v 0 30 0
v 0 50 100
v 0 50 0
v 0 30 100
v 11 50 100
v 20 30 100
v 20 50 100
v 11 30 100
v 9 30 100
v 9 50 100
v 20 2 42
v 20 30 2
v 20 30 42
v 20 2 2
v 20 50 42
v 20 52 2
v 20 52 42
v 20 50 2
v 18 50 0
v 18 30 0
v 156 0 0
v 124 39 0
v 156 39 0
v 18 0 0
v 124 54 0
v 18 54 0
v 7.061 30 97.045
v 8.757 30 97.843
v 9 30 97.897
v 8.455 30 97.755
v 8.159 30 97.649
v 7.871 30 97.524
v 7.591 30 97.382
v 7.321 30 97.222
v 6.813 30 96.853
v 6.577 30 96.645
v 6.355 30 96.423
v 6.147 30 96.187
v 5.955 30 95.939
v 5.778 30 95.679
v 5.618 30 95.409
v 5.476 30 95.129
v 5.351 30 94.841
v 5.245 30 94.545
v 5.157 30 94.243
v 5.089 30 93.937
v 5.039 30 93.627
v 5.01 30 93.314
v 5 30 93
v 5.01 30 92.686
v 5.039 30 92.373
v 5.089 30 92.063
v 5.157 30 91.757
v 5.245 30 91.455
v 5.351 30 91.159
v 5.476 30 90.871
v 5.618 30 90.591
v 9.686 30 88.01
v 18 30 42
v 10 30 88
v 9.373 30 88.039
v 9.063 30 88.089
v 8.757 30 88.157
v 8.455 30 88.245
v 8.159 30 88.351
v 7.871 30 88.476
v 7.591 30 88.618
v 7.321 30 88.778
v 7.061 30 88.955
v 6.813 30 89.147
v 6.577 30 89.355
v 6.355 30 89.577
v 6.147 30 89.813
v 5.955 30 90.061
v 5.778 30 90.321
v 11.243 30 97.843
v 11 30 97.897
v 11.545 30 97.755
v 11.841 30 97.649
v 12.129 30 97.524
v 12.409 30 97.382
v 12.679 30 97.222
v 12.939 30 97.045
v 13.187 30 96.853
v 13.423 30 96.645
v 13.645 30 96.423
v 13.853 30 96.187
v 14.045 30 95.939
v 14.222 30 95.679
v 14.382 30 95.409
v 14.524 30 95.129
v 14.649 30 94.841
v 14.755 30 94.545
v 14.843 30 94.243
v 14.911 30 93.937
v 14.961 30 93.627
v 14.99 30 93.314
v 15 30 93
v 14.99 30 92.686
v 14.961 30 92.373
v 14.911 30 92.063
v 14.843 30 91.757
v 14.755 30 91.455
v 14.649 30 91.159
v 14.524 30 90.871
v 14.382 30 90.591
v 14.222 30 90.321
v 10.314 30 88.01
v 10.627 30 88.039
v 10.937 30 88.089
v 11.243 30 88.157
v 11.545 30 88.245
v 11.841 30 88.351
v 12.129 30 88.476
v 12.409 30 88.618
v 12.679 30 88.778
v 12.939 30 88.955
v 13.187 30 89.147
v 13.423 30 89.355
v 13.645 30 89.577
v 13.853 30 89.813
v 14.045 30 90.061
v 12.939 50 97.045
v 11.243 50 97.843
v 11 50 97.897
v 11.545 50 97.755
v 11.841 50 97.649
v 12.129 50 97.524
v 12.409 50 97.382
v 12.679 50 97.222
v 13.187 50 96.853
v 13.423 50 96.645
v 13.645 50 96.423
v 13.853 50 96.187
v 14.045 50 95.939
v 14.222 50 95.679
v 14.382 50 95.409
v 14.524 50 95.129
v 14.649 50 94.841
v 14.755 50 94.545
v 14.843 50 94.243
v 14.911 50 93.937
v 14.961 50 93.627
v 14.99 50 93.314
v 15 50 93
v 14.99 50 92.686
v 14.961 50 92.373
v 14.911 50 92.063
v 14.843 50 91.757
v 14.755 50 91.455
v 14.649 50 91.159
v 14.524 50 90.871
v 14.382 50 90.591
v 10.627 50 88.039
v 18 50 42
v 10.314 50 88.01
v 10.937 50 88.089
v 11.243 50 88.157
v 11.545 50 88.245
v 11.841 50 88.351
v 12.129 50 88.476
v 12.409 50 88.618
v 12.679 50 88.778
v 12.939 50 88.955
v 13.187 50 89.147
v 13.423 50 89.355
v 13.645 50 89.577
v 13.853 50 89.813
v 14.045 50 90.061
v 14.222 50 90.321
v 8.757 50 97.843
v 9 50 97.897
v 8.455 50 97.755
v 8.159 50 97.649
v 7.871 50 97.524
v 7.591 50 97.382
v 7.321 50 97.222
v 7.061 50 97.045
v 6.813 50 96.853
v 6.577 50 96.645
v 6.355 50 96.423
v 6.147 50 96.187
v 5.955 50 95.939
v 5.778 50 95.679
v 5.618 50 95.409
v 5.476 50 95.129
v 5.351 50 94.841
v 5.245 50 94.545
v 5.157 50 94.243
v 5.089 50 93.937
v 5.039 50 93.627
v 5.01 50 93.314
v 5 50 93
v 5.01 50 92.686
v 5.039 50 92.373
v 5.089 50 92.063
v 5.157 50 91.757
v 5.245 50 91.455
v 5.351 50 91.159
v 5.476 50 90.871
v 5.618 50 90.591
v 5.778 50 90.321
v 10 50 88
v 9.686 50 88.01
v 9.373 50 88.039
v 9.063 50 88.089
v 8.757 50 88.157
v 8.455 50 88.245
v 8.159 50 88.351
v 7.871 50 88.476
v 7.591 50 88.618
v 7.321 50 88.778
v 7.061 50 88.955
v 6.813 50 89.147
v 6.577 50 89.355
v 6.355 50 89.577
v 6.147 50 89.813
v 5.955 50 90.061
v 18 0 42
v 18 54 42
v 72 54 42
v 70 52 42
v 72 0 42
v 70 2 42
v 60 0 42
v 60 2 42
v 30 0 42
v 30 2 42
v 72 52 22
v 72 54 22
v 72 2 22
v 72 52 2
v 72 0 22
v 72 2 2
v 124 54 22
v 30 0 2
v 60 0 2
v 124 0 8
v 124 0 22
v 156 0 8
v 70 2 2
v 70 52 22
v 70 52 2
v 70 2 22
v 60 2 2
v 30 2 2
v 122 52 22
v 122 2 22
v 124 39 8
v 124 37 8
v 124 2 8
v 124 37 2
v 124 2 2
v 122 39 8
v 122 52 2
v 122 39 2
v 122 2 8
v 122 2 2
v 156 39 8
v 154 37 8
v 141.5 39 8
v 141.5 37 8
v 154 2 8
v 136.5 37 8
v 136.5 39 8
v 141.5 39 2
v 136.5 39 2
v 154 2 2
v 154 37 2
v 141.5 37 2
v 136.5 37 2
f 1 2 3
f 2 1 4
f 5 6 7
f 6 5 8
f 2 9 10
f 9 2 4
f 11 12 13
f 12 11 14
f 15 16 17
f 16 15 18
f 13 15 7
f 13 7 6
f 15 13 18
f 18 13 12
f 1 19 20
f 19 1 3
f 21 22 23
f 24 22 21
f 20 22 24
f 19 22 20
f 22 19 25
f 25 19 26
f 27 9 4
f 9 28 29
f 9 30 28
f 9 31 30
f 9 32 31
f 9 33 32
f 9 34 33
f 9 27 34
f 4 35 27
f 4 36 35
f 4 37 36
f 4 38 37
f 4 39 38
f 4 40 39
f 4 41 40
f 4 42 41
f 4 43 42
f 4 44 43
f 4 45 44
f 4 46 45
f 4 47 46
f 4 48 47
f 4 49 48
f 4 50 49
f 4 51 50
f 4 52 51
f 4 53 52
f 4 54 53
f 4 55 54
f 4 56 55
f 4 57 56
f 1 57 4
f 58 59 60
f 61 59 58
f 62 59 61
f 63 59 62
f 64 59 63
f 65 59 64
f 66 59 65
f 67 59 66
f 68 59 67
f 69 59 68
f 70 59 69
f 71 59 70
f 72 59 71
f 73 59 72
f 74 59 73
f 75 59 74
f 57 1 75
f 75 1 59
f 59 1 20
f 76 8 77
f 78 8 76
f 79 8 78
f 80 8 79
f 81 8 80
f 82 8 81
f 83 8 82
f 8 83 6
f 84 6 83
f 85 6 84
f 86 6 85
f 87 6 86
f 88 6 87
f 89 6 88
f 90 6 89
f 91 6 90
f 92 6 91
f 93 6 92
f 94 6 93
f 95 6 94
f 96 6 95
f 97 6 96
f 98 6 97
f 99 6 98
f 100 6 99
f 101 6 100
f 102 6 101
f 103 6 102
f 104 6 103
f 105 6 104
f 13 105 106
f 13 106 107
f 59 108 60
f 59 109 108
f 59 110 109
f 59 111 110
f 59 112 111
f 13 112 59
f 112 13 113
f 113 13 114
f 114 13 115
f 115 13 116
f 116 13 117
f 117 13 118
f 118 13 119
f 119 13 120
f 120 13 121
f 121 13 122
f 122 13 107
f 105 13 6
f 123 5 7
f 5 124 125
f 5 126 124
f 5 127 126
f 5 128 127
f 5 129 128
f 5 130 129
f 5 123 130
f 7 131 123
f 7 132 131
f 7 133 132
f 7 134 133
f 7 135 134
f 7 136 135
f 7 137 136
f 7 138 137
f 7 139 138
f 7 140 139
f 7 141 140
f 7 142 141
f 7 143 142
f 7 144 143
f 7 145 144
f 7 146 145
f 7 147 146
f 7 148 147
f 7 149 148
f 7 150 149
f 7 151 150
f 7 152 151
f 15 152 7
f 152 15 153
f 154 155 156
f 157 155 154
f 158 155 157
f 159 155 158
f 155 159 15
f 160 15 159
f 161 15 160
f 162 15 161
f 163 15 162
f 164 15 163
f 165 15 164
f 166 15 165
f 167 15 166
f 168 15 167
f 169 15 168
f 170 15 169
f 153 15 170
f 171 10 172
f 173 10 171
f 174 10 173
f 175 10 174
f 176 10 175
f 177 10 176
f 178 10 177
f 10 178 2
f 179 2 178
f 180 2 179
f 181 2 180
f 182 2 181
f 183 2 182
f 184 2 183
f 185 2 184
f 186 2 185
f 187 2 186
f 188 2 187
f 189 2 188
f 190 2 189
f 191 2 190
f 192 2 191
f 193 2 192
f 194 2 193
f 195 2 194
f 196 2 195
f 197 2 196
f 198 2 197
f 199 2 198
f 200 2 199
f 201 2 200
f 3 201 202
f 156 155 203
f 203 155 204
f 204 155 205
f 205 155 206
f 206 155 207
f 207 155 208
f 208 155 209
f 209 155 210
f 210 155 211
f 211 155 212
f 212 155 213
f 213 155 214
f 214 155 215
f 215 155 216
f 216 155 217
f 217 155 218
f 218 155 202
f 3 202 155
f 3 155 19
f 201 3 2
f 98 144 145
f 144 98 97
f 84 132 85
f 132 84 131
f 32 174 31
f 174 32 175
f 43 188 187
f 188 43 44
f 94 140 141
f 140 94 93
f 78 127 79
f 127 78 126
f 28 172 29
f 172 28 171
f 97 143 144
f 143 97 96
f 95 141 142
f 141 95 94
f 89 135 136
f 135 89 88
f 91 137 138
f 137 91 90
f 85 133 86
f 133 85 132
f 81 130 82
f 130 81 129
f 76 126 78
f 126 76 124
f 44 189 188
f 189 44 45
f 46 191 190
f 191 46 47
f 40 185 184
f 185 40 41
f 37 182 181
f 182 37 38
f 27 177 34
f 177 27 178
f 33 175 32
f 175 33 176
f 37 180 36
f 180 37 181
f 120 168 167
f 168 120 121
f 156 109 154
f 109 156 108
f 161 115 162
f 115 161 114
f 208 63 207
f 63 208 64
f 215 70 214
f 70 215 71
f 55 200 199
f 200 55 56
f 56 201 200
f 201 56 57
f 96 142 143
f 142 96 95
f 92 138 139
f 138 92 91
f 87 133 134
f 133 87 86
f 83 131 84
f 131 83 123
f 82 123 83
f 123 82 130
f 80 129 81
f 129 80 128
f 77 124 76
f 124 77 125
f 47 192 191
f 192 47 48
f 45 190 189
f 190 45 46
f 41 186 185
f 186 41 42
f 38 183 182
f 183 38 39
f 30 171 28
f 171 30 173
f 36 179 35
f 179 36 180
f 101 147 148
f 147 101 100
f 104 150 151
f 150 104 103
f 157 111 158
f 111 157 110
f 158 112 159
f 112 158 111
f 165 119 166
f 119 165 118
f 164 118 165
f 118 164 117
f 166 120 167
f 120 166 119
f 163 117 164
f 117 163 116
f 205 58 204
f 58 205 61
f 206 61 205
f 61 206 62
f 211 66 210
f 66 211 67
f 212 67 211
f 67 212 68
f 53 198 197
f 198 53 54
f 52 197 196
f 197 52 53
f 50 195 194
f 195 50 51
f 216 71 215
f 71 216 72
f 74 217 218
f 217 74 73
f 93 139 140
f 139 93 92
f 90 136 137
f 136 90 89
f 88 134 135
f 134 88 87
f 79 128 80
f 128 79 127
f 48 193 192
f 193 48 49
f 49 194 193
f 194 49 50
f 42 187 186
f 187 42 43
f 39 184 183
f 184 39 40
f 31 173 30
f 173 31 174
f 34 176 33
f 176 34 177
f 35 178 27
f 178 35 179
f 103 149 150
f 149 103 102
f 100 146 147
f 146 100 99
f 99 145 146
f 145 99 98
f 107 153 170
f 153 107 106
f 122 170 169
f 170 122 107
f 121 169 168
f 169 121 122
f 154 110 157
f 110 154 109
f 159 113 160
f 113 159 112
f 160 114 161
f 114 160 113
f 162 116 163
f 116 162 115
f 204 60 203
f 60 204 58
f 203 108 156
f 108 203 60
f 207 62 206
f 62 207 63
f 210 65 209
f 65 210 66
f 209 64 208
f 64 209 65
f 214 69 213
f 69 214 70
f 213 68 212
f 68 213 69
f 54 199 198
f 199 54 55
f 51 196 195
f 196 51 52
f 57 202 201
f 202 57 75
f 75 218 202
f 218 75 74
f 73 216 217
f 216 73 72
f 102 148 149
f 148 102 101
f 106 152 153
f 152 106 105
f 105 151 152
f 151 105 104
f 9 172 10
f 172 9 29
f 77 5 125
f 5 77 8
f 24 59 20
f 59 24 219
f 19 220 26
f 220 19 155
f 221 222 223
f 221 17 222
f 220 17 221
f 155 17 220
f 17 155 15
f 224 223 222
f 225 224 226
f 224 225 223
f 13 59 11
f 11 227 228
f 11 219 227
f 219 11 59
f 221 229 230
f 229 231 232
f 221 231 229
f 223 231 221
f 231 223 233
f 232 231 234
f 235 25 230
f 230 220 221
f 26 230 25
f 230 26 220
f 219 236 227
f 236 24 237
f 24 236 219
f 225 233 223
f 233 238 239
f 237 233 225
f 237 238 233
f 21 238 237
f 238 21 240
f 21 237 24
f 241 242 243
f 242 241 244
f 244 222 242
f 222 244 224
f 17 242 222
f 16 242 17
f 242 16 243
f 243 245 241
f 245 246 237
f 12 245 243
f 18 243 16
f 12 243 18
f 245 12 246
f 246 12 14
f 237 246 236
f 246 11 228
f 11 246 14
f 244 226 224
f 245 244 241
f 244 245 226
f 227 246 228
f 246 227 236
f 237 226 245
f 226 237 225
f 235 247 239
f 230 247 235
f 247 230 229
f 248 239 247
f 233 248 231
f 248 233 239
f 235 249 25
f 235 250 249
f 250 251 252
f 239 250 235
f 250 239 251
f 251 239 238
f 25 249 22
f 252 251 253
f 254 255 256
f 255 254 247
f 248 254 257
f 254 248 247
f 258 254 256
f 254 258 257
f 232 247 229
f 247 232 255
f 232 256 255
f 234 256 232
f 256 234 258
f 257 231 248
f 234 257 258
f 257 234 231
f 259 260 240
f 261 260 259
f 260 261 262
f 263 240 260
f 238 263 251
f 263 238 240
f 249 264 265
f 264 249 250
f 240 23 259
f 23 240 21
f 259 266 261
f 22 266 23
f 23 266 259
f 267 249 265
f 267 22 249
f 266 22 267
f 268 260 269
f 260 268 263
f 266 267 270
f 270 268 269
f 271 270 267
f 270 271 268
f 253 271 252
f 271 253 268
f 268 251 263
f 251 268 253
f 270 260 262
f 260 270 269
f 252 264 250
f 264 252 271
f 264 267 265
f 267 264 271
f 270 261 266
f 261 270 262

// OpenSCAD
$fn = 100;

translate([0, 30, 0]) mouse_suspension();
translate([18, 0, 0]) sticky_notes();
translate([70, 0, 0]) odds_and_sods();
translate([122, 0, 0]) fingerprint_sensor();

module mouse_suspension() {
    difference() {
        cube([20, 20, 100]);
        translate([10, 21, 100-5-2])
        rotate([90, 0, 0])
        cylinder(22, 5, 5);
        translate([10-1, -1, 100-2.5])
        cube([2, 22, 3]);
    }
}

module sticky_notes() {
    difference() {
        cube([54, 54, 42]);
        translate([2, 2, 2])
        cube([50, 50, 42]);
        translate([10+2, -1, 2])
        cube([30, 4, 42]);
    }
}

module odds_and_sods() {
    difference() {
        cube([54, 54, 22]);
        translate([2, 2, 2])
        cube([50, 50, 22]);
    }
}

module fingerprint_sensor() {
    difference() {
        cube([34, 39, 8]);
        translate([2, 2, 2])
        cube([30, 35, 7]);
        translate([34/2 - 5/2, 36, 2])
        cube([5, 4, 7]);
     }
 }
 
